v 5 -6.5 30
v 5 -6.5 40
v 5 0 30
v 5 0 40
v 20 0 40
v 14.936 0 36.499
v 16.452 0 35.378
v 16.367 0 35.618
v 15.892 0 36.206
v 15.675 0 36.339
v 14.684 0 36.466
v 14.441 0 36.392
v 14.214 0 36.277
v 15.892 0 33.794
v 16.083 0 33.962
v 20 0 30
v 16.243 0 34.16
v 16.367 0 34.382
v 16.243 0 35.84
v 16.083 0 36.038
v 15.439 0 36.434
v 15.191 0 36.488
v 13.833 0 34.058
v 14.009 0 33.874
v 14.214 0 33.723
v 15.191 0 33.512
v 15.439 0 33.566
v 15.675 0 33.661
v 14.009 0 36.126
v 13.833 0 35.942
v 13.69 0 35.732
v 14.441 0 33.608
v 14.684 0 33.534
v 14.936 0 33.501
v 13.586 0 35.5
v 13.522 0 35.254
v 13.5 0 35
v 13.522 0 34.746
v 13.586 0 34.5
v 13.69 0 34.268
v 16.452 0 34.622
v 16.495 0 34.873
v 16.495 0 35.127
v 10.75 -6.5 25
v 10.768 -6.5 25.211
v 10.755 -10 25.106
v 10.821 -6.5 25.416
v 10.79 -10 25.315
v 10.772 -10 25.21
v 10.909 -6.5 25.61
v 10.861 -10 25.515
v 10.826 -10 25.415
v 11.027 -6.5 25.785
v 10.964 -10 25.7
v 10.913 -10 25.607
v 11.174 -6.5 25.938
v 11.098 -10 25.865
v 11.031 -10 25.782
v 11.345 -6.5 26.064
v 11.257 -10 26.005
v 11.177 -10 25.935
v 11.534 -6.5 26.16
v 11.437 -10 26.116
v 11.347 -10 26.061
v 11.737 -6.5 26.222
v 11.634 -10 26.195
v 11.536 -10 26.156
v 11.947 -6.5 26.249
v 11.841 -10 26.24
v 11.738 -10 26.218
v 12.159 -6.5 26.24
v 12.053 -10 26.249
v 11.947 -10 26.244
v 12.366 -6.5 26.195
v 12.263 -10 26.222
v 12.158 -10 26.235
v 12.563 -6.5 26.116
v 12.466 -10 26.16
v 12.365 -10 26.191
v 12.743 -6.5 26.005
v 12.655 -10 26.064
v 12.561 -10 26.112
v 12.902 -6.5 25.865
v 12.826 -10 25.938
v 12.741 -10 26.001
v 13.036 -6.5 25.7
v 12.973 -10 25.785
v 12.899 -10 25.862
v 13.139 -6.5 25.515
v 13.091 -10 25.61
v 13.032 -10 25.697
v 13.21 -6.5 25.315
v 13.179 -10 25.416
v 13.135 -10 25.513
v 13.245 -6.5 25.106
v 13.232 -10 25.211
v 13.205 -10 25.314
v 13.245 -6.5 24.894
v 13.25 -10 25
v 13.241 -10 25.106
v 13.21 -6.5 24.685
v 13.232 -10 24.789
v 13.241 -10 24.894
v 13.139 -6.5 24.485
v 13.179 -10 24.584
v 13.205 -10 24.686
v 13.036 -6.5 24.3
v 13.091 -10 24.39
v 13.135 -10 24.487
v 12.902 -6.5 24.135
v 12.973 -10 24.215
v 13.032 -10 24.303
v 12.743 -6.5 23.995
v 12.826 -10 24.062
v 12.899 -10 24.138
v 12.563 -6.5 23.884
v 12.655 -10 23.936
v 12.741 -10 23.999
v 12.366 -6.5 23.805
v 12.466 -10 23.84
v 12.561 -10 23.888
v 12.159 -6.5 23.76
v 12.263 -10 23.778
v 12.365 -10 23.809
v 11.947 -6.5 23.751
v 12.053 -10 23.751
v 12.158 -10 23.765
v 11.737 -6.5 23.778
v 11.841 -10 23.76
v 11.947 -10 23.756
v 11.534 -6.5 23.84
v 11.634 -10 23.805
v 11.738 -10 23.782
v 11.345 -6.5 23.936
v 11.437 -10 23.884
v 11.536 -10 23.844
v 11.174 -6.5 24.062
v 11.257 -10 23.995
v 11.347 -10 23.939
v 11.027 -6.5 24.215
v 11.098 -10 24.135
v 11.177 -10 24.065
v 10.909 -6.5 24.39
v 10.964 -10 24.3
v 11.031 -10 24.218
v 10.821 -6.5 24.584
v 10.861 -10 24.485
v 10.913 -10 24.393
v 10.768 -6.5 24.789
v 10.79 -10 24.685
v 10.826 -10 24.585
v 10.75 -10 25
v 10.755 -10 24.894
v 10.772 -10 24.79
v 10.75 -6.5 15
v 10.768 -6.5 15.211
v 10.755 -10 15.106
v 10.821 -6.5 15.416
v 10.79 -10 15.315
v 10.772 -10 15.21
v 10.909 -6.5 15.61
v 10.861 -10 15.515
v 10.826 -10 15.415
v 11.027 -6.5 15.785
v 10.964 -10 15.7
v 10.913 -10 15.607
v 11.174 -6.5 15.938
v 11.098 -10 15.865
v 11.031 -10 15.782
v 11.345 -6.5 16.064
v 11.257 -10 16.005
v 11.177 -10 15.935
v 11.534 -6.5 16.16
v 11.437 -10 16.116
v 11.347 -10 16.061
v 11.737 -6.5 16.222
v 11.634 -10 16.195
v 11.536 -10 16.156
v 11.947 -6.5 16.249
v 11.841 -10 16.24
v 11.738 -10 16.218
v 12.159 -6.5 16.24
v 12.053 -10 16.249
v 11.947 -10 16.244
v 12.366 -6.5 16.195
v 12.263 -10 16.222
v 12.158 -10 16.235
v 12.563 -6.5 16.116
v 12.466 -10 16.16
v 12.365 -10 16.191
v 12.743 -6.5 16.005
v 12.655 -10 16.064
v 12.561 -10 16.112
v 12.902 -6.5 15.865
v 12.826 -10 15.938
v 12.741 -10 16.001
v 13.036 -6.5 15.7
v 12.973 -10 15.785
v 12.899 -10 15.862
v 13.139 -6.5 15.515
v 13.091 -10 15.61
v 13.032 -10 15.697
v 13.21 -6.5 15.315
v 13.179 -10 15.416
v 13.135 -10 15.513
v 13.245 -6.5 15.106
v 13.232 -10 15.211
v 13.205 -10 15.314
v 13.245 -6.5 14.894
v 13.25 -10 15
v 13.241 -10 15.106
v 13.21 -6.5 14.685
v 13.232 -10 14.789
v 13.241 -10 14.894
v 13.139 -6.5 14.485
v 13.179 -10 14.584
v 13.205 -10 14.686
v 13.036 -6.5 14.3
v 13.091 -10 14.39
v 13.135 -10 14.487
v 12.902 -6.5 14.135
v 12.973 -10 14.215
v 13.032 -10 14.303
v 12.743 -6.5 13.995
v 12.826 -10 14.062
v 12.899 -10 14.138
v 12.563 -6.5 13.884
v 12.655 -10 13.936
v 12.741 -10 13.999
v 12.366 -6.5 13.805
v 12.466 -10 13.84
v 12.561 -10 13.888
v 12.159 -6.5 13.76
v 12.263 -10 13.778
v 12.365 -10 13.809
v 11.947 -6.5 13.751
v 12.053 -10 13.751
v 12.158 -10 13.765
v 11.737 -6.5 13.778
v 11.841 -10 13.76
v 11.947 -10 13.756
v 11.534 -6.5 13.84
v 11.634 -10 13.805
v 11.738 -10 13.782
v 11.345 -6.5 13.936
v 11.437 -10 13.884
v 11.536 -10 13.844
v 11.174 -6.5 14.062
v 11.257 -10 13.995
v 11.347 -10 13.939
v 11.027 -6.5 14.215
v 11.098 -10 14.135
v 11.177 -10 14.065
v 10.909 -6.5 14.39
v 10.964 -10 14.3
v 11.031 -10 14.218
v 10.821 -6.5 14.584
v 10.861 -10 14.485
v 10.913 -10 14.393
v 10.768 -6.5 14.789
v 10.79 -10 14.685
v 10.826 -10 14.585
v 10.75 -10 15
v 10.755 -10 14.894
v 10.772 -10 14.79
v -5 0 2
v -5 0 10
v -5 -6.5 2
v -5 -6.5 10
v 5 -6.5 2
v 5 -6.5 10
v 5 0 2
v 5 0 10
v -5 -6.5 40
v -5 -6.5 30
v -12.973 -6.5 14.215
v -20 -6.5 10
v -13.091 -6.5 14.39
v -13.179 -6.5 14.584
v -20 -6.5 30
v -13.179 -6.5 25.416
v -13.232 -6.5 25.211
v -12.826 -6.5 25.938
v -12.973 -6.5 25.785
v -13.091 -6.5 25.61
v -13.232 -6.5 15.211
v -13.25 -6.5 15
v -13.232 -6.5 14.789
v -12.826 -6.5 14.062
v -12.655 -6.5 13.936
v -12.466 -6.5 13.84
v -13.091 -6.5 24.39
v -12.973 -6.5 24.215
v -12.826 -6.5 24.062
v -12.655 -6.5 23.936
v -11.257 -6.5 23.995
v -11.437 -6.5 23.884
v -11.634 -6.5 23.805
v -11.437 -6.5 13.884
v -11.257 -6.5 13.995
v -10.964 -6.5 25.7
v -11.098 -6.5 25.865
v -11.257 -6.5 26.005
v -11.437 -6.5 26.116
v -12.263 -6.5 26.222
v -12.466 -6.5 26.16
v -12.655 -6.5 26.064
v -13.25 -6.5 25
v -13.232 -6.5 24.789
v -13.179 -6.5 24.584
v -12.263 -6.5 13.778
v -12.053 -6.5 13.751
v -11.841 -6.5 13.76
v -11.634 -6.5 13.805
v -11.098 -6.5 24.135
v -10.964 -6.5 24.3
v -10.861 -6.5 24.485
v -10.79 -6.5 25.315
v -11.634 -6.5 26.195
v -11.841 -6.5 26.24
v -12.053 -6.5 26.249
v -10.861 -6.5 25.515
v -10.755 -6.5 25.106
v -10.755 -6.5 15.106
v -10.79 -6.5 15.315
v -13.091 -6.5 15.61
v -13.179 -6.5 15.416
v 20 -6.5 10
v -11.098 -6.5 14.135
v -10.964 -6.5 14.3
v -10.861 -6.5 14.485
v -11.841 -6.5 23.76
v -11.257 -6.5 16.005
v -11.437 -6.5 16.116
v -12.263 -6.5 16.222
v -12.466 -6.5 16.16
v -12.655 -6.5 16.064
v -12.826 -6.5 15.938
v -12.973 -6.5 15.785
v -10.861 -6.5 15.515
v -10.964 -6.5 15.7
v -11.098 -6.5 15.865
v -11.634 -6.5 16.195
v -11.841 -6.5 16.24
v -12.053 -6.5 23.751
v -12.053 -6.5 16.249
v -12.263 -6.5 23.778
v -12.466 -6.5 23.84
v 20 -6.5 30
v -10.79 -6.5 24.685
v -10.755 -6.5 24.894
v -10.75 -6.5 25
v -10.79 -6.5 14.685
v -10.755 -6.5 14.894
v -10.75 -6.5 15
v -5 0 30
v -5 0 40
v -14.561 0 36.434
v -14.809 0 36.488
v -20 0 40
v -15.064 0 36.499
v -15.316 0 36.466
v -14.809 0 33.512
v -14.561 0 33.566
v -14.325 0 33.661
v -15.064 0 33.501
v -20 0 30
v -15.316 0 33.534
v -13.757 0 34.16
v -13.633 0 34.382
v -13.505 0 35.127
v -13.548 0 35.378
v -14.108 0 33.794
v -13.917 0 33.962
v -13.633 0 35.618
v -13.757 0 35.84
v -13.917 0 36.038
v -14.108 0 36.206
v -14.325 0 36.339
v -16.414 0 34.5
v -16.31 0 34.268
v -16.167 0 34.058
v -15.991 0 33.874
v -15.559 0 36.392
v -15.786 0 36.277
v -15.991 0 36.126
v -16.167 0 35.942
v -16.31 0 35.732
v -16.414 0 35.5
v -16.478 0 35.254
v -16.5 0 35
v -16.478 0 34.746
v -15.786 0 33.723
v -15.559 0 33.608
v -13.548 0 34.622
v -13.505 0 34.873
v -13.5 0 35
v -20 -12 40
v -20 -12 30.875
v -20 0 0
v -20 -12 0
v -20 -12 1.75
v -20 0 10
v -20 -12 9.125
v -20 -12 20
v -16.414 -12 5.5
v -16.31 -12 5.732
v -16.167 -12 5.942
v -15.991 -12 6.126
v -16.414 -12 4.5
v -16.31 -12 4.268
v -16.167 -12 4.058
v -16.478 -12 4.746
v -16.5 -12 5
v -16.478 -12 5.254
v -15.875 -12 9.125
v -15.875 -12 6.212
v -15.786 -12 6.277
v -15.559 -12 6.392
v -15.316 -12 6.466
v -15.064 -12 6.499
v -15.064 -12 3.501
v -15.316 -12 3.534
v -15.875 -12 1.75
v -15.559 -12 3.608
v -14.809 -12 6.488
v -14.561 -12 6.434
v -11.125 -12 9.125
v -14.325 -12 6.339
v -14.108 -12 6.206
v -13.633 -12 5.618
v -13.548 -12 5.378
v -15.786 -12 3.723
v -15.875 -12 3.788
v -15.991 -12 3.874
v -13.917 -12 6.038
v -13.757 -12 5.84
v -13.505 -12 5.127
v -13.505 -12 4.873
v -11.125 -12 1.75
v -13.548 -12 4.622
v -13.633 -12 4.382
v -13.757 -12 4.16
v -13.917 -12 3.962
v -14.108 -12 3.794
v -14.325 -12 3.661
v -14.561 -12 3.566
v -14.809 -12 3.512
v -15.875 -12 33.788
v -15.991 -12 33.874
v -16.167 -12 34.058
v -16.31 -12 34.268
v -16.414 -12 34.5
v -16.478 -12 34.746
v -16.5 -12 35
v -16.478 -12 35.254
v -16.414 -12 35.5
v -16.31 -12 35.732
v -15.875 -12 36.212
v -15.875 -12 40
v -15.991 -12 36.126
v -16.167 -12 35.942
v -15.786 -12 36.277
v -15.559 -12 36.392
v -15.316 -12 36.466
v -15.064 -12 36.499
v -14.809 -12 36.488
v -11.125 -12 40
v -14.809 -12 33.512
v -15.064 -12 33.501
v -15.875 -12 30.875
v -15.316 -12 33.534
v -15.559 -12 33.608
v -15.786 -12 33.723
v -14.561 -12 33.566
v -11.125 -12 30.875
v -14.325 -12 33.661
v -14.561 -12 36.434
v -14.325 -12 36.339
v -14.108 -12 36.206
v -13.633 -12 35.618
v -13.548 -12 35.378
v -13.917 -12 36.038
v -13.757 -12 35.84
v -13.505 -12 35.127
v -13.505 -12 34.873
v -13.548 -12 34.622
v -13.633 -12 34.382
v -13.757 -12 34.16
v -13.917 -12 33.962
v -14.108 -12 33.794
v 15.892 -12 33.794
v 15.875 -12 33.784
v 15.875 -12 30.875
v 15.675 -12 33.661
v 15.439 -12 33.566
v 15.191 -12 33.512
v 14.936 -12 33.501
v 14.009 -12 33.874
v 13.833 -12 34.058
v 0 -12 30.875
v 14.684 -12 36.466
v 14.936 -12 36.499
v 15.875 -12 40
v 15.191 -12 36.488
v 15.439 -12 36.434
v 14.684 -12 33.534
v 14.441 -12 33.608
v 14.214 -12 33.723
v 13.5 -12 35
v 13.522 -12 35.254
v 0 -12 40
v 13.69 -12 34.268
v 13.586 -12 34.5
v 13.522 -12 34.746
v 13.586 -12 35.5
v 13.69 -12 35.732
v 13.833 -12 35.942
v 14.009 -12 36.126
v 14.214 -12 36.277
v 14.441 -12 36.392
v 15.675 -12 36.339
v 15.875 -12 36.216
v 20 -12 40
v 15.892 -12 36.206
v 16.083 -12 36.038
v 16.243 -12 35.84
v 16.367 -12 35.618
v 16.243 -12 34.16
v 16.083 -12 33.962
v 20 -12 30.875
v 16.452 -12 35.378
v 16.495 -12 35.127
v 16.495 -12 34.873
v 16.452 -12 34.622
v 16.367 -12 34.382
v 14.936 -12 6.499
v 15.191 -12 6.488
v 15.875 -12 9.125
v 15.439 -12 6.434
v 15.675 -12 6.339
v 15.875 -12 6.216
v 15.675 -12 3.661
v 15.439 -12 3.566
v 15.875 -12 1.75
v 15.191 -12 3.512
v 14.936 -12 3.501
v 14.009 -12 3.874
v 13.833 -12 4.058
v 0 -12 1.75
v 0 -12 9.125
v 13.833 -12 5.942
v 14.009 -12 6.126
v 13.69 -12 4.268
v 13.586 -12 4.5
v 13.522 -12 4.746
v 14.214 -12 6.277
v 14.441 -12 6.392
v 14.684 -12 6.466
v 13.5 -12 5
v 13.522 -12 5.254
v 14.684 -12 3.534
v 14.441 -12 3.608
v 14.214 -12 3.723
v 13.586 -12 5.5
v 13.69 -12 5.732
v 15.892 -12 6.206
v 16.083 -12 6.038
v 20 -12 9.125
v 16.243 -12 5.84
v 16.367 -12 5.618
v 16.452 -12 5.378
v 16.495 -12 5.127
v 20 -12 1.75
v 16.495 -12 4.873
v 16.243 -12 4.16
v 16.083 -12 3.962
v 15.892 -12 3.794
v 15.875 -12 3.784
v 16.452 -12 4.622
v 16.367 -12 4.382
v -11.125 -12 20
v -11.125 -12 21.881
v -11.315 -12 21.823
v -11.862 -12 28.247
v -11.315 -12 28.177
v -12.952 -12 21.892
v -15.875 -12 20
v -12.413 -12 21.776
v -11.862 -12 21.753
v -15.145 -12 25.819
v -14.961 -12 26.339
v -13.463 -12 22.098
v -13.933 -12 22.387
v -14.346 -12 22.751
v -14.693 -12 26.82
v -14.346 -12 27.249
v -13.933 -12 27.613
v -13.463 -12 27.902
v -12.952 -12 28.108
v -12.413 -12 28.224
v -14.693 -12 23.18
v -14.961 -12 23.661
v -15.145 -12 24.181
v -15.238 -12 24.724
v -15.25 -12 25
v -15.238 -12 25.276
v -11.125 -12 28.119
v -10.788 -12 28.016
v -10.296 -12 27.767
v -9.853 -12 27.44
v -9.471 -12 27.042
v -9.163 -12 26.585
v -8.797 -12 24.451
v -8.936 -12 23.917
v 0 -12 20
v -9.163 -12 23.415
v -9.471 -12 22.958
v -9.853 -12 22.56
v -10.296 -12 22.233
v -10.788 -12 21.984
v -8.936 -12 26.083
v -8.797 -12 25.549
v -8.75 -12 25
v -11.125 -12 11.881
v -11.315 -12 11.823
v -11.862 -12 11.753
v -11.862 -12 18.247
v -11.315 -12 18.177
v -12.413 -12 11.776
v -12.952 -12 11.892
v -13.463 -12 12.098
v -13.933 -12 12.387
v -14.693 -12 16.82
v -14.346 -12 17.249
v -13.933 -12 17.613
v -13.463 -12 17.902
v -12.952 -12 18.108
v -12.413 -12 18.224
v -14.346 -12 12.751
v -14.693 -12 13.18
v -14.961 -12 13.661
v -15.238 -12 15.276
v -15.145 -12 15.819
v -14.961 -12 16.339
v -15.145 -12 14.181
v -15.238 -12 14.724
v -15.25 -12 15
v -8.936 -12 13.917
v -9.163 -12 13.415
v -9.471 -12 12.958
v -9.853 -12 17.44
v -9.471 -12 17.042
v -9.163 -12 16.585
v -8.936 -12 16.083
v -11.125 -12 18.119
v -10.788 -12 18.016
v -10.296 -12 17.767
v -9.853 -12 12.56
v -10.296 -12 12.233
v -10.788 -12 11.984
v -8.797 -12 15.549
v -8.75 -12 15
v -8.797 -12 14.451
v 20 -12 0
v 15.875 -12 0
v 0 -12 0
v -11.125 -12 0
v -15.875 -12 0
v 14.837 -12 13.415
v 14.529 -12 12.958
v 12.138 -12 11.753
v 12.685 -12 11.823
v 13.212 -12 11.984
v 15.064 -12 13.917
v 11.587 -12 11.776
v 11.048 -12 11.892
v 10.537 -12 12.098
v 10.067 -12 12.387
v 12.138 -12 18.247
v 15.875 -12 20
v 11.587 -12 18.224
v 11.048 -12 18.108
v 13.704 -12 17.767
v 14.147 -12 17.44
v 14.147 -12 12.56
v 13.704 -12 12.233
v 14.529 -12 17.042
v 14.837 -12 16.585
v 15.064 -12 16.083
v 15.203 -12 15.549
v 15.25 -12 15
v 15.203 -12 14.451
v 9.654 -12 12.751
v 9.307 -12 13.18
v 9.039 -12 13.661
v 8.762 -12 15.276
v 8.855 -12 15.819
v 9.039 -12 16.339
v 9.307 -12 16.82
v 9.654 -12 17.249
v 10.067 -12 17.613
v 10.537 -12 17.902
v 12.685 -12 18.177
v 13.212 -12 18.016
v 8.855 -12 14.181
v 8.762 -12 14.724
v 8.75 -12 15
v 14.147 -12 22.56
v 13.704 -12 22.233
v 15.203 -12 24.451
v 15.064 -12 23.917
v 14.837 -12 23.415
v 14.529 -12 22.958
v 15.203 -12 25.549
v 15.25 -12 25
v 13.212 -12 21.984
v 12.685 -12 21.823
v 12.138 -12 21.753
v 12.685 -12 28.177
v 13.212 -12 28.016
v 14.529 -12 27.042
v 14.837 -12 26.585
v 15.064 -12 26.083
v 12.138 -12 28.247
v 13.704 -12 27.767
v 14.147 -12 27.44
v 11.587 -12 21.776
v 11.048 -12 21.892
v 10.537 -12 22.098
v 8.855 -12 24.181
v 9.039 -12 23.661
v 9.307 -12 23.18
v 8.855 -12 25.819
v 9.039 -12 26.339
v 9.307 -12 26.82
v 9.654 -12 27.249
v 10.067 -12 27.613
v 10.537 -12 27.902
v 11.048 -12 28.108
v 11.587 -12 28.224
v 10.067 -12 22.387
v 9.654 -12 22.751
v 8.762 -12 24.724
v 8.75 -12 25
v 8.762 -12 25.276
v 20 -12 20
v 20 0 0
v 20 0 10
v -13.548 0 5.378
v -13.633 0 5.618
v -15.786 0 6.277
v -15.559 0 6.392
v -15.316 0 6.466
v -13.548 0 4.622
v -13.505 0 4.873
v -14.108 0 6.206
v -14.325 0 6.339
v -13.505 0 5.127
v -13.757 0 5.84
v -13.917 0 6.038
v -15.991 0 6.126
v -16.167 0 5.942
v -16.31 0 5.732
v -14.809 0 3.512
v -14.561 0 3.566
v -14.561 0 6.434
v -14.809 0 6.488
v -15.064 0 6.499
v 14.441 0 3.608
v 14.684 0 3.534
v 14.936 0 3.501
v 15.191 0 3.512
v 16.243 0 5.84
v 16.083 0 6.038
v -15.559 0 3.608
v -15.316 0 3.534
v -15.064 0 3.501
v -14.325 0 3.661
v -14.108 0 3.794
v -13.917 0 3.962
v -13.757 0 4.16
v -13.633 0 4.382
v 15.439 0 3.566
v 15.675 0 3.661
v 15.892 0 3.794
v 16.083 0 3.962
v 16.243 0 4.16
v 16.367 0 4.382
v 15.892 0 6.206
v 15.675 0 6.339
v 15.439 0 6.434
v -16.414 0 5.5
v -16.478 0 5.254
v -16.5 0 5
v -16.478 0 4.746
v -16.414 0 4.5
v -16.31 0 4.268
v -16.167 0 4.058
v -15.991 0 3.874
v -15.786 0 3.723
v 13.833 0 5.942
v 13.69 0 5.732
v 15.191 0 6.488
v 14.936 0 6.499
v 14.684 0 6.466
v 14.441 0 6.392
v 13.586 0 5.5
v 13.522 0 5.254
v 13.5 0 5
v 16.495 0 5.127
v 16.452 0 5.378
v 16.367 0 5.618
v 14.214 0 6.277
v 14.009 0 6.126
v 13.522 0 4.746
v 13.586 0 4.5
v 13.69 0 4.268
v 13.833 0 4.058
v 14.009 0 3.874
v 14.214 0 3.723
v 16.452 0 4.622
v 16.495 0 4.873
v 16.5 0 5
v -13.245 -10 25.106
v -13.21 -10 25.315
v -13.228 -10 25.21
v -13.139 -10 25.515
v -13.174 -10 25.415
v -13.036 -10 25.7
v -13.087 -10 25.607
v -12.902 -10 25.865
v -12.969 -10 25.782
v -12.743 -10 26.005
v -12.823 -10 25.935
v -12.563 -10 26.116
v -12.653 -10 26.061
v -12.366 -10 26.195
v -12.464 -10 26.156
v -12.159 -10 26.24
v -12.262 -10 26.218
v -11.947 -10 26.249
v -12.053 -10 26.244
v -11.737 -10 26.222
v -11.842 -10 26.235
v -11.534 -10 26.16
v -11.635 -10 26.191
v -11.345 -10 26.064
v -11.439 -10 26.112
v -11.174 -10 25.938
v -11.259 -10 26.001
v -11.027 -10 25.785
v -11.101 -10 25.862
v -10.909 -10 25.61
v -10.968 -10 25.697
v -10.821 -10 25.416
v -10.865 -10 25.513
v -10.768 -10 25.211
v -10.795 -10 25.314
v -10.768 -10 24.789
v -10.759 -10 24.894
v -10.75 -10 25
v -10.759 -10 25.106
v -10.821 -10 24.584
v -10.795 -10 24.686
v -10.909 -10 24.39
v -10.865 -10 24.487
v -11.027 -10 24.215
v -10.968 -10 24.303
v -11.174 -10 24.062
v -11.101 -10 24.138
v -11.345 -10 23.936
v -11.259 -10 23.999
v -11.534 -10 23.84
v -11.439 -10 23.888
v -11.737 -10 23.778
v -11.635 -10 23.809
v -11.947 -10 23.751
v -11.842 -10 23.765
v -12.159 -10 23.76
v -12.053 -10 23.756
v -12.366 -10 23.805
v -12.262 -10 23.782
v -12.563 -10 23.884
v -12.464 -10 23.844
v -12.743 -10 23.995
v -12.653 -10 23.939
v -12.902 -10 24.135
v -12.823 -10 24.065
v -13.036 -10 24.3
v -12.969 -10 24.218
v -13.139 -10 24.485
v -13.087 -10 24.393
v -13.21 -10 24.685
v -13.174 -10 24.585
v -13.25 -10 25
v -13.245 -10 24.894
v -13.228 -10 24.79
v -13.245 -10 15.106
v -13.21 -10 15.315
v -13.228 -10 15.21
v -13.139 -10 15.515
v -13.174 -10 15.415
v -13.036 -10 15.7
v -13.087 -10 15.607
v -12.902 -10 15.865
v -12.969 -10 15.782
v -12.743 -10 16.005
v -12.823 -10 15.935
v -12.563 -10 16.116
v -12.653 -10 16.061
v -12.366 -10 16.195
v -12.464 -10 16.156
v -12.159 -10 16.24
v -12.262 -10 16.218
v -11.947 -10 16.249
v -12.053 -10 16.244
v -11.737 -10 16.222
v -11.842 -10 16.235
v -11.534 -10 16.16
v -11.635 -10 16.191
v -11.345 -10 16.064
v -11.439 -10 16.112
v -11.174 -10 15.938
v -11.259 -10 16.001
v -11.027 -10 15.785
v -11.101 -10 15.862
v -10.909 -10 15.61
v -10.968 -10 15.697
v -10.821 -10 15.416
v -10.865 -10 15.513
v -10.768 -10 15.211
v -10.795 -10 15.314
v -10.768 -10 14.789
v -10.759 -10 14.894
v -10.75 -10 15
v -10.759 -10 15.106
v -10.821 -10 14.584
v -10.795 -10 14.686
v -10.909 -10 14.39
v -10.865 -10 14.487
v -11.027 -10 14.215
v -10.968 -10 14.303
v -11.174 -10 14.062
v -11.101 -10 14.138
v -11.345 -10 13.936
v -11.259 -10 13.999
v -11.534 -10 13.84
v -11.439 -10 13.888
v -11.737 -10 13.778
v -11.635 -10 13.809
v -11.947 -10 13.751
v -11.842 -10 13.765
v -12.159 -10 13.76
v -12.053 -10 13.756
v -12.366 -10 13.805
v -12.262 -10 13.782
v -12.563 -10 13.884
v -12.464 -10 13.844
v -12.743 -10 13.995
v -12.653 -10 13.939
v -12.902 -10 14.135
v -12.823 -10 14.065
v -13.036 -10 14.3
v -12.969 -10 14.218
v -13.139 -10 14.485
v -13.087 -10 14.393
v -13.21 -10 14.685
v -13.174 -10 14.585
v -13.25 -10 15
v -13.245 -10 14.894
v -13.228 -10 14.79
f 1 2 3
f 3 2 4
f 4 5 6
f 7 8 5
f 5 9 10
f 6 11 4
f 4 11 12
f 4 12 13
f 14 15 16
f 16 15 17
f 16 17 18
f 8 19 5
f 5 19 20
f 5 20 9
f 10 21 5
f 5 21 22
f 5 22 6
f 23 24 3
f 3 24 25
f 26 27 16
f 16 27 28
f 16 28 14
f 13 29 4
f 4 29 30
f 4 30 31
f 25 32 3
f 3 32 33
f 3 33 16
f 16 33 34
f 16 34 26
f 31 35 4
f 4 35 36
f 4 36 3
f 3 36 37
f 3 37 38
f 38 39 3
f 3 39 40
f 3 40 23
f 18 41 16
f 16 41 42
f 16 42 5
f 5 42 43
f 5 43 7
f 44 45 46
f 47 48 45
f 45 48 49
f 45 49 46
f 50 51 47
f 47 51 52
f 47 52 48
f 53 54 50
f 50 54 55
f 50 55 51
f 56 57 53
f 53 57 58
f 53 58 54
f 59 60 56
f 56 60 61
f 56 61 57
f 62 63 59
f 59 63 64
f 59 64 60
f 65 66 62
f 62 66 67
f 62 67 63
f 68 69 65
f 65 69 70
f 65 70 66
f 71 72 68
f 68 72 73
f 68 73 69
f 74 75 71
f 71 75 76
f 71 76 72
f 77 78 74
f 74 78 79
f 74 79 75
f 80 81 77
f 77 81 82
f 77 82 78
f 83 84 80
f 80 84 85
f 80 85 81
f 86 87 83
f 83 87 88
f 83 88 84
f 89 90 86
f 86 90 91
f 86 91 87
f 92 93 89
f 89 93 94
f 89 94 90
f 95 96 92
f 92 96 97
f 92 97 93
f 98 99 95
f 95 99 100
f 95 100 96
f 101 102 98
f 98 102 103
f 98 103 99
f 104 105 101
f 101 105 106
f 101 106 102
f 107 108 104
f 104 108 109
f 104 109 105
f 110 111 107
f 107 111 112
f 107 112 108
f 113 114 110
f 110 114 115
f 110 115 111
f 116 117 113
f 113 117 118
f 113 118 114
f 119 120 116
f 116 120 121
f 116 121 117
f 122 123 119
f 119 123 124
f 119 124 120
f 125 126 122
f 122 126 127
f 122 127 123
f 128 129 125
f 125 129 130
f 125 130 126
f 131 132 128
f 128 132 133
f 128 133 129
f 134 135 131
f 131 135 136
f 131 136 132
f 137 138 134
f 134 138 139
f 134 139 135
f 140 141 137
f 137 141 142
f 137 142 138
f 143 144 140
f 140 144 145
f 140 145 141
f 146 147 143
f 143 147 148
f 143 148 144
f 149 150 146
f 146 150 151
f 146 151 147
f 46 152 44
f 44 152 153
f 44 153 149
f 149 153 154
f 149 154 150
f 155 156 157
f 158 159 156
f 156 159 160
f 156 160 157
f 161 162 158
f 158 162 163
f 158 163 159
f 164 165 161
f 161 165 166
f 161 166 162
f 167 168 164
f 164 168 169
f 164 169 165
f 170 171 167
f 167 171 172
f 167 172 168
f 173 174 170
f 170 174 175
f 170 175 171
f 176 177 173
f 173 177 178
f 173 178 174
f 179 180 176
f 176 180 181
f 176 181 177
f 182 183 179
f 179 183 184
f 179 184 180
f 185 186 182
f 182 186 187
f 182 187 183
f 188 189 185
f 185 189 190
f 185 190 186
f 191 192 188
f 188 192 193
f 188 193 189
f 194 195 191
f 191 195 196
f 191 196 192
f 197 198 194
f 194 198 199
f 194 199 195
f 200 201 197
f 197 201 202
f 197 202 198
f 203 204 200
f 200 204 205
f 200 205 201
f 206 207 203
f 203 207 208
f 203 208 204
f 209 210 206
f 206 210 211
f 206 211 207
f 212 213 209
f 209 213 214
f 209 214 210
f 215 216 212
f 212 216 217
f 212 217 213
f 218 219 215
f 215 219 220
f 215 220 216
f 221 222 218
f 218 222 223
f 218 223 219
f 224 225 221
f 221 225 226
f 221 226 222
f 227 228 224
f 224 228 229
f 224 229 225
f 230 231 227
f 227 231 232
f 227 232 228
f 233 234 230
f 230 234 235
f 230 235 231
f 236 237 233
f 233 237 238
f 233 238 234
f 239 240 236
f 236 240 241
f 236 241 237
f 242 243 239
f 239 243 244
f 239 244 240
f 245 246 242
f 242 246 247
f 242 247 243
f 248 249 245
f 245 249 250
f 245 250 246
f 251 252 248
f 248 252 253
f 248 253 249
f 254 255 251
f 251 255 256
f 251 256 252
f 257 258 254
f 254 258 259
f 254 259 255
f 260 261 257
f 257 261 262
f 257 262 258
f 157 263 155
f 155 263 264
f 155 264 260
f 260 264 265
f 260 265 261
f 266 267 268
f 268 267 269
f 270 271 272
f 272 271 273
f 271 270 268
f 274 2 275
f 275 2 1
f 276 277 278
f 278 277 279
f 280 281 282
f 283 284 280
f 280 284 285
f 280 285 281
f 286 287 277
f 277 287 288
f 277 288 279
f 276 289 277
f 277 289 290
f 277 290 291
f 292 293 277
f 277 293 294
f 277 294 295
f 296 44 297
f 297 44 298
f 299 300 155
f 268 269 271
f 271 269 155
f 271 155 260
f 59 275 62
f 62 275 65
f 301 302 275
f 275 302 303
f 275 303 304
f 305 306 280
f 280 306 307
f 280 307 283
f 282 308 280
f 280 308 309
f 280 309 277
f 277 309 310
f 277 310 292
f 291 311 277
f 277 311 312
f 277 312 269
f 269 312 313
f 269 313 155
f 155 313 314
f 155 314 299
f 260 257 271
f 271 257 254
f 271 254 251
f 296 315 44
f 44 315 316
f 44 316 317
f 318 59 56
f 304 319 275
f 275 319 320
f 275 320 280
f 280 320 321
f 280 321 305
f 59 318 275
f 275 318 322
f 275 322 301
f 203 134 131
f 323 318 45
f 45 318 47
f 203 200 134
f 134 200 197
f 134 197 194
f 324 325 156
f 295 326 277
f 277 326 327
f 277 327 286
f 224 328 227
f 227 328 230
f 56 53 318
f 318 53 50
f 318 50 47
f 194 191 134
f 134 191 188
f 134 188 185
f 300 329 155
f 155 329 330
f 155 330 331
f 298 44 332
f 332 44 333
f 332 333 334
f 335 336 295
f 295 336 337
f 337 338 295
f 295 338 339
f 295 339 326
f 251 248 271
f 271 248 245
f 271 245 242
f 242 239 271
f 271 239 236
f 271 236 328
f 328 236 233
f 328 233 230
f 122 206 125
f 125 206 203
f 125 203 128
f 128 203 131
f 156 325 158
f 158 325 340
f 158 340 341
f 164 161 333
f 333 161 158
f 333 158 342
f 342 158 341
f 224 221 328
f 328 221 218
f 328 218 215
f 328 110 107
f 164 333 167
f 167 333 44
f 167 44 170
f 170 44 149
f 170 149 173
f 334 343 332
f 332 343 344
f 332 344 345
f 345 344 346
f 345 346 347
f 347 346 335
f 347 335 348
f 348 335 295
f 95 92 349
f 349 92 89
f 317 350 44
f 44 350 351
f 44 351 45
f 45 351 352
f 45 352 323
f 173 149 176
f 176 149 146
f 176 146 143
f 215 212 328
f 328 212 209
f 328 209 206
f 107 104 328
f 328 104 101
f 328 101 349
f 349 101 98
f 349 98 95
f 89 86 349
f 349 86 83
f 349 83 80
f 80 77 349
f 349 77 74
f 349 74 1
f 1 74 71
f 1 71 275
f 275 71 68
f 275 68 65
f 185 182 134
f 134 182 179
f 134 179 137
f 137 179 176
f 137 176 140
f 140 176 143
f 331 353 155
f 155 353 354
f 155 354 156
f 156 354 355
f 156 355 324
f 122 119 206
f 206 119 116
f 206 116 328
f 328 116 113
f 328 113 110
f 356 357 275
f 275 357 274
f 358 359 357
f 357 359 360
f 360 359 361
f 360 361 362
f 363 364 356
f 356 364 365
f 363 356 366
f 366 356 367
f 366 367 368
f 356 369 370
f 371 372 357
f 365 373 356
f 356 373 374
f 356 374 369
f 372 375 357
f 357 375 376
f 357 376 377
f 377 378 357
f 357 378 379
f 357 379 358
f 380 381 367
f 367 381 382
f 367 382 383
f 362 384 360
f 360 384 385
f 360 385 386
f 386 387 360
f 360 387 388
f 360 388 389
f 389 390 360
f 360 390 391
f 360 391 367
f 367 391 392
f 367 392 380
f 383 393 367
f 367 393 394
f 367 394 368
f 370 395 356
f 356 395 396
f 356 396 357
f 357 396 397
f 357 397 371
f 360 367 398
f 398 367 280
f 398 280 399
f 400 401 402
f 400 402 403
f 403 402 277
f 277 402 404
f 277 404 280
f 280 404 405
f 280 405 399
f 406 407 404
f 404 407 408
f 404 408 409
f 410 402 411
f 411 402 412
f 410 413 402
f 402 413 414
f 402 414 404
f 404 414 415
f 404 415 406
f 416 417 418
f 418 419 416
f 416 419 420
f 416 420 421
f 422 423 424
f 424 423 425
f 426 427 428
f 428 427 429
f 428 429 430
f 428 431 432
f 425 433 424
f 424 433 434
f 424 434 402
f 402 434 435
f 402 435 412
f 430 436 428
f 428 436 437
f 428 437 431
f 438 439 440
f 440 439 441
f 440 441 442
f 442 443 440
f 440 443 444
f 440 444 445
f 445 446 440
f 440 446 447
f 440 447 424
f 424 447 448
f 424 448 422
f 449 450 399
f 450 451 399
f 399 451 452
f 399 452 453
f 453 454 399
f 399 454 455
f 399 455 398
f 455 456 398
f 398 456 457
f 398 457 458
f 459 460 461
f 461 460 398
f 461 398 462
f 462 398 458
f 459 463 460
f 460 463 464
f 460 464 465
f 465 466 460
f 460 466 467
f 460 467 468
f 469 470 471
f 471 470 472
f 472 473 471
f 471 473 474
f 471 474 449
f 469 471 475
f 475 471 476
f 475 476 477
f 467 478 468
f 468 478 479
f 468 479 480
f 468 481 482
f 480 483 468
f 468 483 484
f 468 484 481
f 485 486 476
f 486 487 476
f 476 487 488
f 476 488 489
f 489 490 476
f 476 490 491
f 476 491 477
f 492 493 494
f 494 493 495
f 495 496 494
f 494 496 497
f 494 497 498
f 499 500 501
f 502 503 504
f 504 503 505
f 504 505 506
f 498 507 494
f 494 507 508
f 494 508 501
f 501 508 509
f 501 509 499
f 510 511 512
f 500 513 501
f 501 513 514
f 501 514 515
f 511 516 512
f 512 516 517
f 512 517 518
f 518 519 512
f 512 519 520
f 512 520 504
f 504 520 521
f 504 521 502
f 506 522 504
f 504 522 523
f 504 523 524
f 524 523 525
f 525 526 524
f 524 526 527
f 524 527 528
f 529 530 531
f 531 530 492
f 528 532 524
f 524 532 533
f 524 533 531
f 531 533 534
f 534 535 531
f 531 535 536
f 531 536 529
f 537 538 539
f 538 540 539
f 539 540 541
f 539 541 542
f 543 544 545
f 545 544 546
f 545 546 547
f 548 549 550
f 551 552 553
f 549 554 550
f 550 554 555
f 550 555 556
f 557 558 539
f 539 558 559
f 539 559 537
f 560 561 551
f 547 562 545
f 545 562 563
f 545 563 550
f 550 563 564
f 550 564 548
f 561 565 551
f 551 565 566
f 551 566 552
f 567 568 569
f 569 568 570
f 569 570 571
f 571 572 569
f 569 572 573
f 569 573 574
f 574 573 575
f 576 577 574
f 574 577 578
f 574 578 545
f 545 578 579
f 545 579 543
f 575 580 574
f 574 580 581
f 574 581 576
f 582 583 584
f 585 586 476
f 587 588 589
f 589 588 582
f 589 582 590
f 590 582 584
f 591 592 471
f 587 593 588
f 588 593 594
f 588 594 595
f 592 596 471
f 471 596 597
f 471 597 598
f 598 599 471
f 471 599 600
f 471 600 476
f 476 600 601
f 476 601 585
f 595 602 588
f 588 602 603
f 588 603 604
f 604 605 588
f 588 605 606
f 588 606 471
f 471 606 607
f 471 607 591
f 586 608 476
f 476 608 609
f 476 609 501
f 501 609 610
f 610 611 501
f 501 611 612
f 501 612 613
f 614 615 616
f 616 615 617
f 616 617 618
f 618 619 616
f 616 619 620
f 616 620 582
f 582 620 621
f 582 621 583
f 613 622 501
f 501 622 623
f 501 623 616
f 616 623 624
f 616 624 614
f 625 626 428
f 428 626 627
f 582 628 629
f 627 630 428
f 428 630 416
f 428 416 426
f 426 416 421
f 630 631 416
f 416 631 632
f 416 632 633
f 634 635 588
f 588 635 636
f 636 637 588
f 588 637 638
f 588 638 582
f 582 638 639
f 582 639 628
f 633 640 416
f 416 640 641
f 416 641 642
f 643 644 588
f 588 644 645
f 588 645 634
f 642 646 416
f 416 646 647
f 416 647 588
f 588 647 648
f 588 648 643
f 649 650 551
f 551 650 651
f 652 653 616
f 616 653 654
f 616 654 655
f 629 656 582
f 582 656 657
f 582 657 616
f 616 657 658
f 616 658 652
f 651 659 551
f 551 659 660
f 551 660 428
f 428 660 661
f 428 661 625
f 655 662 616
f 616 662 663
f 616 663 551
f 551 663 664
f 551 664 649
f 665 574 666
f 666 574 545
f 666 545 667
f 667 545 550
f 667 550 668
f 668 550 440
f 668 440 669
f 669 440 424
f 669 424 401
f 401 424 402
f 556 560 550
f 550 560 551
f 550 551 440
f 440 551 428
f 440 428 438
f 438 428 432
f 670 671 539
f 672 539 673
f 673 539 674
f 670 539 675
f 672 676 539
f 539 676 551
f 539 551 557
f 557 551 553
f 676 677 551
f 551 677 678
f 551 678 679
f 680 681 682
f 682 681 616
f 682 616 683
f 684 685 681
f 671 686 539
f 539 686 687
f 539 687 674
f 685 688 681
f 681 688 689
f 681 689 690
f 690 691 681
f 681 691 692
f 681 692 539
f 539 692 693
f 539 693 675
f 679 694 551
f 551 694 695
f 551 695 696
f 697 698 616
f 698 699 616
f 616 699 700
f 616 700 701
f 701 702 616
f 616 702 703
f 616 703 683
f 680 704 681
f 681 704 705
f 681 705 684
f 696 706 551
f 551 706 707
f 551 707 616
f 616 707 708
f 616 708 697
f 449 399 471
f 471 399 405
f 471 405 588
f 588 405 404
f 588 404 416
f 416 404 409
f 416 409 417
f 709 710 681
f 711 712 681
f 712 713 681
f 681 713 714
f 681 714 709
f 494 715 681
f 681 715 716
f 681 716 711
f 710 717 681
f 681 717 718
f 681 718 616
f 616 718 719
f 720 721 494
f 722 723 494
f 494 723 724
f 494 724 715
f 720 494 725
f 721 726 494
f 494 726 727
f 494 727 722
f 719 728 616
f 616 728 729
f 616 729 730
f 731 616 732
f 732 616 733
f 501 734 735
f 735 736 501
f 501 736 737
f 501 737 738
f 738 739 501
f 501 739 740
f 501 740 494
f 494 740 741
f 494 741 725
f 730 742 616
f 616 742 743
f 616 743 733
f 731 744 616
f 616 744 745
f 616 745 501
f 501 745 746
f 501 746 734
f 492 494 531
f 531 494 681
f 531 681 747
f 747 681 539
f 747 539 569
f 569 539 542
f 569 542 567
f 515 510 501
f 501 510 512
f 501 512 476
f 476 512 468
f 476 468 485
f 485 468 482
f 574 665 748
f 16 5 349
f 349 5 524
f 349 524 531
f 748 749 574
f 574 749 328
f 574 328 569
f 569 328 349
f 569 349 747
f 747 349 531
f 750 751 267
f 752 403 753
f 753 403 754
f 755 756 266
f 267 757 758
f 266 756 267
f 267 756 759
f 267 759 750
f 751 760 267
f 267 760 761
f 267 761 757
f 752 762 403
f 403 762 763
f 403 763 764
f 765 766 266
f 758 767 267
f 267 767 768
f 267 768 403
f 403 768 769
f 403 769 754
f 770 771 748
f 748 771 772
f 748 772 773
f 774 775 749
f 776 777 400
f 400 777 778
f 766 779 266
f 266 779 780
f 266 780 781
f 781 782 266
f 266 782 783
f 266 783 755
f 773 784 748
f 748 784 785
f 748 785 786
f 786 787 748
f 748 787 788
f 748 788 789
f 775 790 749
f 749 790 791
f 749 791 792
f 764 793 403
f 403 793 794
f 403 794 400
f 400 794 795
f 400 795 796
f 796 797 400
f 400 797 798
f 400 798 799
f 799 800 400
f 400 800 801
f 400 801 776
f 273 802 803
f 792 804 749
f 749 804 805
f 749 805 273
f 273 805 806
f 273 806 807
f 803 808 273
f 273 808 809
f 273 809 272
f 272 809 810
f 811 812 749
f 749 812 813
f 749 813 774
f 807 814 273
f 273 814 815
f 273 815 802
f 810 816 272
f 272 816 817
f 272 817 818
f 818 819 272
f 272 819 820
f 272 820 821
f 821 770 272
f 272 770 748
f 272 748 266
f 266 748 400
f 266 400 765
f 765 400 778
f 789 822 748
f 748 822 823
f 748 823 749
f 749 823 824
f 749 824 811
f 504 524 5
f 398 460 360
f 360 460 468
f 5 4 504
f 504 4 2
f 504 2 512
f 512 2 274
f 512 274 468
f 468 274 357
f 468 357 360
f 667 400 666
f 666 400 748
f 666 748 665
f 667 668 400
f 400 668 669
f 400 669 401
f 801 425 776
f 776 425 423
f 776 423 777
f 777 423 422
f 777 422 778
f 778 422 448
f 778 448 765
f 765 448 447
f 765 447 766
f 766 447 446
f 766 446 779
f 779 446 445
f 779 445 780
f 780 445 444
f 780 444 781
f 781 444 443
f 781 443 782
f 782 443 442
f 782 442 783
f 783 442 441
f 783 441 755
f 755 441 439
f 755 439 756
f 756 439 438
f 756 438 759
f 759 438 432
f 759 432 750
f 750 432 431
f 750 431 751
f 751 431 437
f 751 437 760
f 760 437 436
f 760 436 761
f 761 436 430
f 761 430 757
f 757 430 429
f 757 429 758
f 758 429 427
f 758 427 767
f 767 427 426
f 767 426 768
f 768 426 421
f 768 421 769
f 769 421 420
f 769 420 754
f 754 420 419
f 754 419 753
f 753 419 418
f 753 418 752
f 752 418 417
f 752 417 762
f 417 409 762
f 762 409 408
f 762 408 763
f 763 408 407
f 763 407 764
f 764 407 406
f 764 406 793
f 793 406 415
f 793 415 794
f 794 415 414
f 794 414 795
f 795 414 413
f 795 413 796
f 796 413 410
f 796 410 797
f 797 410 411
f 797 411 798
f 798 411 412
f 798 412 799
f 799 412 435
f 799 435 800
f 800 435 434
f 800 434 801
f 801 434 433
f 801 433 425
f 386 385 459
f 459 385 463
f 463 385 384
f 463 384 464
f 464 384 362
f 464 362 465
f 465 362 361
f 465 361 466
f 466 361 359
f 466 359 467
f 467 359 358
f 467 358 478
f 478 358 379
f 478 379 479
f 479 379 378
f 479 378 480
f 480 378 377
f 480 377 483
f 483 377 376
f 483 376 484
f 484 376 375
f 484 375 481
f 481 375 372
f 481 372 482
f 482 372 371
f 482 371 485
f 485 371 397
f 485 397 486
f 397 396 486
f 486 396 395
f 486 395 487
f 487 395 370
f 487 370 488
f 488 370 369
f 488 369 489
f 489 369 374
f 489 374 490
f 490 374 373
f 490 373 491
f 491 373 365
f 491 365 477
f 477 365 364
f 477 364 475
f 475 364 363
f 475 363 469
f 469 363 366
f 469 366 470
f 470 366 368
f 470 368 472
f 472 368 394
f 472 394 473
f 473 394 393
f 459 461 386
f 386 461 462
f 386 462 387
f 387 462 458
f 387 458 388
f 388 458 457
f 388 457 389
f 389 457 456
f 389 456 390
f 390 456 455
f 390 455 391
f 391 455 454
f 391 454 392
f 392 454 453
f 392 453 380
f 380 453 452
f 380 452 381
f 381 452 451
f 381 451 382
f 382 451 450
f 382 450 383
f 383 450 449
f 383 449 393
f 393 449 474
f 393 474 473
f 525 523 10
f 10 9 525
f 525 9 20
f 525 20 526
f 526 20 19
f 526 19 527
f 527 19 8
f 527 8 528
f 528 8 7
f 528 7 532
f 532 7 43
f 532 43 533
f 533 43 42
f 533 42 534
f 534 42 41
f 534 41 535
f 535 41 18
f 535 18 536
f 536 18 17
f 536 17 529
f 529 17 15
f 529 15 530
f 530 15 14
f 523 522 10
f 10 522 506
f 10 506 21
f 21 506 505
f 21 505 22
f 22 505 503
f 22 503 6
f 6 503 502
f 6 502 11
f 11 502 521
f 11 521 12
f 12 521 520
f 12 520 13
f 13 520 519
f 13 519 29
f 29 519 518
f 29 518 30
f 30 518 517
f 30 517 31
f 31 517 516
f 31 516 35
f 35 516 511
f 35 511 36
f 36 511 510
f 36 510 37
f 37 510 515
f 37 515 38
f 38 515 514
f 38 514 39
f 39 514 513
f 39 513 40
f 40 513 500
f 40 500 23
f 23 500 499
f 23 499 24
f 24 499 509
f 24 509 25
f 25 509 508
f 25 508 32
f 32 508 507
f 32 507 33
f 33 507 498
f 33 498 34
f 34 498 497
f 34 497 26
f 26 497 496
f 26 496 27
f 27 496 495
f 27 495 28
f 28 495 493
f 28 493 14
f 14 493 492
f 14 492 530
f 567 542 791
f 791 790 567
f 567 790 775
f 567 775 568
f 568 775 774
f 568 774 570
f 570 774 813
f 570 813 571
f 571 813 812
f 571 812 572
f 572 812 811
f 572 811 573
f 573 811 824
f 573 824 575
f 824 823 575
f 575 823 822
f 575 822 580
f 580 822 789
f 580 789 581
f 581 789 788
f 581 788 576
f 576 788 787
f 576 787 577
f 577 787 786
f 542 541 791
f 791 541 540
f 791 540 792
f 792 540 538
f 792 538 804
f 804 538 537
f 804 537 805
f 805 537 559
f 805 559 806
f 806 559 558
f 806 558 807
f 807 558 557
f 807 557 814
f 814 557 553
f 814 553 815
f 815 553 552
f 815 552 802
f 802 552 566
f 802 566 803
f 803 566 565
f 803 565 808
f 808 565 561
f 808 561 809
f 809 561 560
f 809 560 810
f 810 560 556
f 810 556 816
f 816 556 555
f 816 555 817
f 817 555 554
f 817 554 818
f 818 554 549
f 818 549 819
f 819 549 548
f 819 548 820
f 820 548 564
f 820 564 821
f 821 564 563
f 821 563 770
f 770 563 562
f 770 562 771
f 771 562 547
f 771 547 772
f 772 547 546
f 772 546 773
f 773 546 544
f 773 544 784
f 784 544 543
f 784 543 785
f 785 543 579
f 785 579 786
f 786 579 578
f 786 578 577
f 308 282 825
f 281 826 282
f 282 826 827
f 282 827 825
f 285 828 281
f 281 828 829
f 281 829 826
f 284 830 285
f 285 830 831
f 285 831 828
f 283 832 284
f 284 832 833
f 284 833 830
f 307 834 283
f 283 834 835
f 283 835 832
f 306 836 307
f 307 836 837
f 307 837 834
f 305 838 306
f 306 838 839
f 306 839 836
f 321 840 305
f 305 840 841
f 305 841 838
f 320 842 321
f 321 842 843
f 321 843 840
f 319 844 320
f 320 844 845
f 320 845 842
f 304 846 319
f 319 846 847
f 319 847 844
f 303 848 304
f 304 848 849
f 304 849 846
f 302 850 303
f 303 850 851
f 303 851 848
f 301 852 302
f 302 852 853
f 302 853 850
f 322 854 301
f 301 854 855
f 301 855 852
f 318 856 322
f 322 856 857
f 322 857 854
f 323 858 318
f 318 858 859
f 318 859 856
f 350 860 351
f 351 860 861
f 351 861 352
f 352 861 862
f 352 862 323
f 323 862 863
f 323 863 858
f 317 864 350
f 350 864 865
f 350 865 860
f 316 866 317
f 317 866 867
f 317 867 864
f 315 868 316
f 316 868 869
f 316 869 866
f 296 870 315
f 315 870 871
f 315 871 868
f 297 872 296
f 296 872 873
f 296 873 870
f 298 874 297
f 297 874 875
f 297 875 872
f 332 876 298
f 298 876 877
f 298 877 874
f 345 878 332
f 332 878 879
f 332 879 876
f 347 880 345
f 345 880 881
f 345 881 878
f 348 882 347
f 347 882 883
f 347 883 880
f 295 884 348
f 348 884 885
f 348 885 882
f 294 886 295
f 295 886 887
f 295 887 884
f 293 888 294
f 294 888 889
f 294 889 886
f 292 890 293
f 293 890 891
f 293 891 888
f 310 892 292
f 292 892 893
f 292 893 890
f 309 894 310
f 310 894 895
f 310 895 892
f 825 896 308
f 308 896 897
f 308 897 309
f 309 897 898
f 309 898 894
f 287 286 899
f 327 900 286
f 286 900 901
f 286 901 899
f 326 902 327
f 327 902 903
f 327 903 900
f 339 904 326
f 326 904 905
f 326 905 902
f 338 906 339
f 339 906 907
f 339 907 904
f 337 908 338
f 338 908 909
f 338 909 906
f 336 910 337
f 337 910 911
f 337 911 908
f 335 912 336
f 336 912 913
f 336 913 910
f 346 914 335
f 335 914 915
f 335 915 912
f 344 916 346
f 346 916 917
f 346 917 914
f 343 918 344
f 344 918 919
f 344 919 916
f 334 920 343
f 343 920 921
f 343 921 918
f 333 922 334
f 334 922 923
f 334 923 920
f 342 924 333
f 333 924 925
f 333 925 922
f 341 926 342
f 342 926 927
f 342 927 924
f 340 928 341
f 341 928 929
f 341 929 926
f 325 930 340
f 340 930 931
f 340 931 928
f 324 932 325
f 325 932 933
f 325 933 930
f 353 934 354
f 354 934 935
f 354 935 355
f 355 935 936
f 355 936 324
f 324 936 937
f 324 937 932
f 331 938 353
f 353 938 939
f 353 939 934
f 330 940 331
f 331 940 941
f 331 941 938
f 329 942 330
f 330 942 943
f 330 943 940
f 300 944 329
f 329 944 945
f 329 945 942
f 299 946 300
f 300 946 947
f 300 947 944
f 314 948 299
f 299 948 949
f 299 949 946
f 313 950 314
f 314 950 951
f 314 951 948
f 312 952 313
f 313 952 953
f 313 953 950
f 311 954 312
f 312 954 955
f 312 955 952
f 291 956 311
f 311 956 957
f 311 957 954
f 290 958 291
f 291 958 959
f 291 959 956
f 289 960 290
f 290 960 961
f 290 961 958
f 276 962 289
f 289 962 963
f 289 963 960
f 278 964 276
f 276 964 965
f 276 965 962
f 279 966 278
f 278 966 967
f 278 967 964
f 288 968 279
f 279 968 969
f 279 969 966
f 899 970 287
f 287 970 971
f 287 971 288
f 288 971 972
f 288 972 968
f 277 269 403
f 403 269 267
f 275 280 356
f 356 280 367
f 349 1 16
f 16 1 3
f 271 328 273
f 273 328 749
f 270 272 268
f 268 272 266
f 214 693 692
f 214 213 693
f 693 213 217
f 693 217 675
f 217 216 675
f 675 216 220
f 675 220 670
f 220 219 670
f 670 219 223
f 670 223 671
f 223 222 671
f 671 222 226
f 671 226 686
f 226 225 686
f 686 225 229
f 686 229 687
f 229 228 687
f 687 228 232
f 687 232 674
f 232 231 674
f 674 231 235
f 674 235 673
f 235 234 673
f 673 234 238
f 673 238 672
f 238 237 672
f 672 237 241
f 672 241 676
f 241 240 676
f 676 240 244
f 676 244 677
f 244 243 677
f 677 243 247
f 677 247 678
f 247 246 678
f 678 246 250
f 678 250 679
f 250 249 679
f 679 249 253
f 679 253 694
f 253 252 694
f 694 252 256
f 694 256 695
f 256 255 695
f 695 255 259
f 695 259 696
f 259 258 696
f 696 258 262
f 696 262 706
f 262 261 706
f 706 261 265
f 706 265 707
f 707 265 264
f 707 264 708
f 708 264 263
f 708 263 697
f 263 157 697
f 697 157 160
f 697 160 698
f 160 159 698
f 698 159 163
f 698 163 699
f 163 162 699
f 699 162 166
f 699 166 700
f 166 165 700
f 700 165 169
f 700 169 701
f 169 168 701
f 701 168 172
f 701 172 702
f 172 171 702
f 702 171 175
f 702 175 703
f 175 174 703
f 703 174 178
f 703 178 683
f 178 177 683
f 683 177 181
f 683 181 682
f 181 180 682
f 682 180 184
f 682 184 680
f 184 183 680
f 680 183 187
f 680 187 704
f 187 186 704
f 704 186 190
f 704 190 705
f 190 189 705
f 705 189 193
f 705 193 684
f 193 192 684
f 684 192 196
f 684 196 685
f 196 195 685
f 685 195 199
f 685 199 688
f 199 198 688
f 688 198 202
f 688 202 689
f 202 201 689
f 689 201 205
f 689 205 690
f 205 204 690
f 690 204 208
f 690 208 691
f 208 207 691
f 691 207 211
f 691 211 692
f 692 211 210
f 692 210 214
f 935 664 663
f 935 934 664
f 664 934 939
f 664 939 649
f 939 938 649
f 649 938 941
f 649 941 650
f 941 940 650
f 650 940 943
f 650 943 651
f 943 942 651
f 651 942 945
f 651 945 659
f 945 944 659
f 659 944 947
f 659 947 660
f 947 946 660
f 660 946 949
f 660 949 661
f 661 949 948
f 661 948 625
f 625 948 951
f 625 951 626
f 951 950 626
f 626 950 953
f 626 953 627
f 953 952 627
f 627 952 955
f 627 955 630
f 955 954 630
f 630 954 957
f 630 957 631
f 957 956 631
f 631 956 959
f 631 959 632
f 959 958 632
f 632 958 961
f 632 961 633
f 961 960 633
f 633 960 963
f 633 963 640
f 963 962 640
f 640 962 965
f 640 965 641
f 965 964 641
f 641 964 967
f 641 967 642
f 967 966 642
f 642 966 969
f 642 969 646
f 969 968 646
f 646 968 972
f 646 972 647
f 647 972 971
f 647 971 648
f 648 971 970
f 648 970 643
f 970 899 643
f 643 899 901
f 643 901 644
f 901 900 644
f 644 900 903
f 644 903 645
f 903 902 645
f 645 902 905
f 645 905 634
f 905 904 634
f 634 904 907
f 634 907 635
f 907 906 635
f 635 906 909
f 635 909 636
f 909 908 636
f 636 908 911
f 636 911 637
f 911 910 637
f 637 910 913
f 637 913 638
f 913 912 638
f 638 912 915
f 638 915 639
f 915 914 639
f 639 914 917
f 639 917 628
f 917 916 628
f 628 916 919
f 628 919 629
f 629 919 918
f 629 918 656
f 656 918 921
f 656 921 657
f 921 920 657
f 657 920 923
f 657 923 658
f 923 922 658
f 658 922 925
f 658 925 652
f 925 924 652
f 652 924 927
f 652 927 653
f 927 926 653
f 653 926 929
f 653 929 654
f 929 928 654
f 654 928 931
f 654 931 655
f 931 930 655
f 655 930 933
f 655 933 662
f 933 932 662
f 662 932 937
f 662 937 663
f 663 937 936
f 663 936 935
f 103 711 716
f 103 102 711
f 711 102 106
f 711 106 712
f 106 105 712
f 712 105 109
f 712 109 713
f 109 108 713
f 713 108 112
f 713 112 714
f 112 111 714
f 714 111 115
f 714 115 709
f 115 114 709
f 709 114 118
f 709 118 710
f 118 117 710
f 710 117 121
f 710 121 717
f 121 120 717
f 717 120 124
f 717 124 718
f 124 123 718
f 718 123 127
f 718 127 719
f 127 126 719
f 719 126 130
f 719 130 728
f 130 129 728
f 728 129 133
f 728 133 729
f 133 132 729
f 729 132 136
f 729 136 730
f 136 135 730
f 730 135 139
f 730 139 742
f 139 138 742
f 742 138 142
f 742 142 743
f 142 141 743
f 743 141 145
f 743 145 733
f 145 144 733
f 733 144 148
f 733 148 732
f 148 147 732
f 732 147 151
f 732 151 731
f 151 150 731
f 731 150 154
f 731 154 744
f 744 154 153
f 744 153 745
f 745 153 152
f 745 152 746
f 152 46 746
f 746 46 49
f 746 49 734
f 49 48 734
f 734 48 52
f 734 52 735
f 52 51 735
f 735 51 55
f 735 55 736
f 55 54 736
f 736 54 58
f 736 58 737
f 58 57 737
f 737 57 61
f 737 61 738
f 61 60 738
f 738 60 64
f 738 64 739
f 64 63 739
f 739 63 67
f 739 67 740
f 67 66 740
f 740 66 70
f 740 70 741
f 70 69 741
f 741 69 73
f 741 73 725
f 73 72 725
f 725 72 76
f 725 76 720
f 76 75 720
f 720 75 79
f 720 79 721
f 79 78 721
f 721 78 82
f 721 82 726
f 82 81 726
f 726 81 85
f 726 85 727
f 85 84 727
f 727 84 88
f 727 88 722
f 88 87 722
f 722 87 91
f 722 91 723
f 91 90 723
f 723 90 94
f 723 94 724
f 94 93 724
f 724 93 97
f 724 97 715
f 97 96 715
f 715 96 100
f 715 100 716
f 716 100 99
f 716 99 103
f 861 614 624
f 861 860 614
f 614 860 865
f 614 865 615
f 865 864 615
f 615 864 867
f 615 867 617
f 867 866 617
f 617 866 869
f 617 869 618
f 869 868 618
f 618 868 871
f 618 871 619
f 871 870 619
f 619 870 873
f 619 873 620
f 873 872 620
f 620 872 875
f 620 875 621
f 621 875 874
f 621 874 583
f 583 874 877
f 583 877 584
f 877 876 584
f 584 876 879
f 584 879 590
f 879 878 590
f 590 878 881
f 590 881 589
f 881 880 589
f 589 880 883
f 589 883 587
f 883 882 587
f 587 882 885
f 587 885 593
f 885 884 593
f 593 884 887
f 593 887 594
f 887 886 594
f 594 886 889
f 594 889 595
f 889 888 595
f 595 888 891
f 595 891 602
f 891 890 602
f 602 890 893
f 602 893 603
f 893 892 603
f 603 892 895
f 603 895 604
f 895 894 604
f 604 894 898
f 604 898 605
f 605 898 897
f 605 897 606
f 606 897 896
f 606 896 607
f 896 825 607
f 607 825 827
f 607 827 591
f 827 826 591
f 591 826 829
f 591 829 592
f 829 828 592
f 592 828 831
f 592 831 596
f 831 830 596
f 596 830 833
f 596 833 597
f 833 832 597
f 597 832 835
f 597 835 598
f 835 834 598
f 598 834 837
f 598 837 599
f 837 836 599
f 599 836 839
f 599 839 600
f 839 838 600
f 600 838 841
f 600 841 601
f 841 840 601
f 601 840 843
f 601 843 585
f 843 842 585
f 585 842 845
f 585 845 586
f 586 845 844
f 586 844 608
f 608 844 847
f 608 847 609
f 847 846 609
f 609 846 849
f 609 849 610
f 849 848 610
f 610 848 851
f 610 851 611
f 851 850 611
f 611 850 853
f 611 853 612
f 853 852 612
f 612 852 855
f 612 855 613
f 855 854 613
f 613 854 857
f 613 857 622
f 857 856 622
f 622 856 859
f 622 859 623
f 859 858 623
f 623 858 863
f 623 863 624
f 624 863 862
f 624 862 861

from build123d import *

# Parameters (mm, degrees)
BOSS_EXTRU_1_DEPTH      = 40
ENL_V_MAT_EXTRU_1_REACH = 14
ESQUISSE2_R             = 1.5
ESQUISSE2_R_2           = 1.25
ESQUISSE3_W             = 15
ESQUISSE3_H             = 20
ENL_V_MAT_EXTRU_2_DEPTH = 6.5
ESQUISSE4_W             = 40
ESQUISSE4_H             = 12
BOSS_EXTRU_2_DEPTH      = 2
CHANFREIN1_SIZE         = 2


with BuildPart() as part:
    # Esquisse1 → Boss.-Extru.1 (new body)
    with BuildSketch(Plane.XY):
        Polygon((5, 0), (20, 0), (20, -12), (-20, -12), (-20, 0), (-5, 0), (-5, -6.5), (5, -6.5), align=None)
    extrude(amount=BOSS_EXTRU_1_DEPTH)

    # Esquisse2 → Enlèv. mat.-Extru.1 (cut, up to next)
    with BuildSketch(Plane(origin=(0, 0, 0), x_dir=(1, 0, 0), z_dir=(0, 1, 0)), mode=Mode.PRIVATE) as enl_v_mat_extru_1_sk1:
        with Locations((-15, -5)):
            Circle(ESQUISSE2_R)
    enl_v_mat_extru_1_tool1 = extrude(enl_v_mat_extru_1_sk1.sketch, amount=-ENL_V_MAT_EXTRU_1_REACH, mode=Mode.PRIVATE) & part.part
    add(enl_v_mat_extru_1_tool1.solids().sort_by_distance((-15, 0, 5))[0], mode=Mode.SUBTRACT)
    # Esquisse2 → Enlèv. mat.-Extru.1 (cut, up to next)
    with BuildSketch(Plane(origin=(0, 0, 0), x_dir=(1, 0, 0), z_dir=(0, 1, 0)), mode=Mode.PRIVATE) as enl_v_mat_extru_1_sk2:
        with Locations((-15, -35)):
            Circle(ESQUISSE2_R)
    enl_v_mat_extru_1_tool2 = extrude(enl_v_mat_extru_1_sk2.sketch, amount=-ENL_V_MAT_EXTRU_1_REACH, mode=Mode.PRIVATE) & part.part
    add(enl_v_mat_extru_1_tool2.solids().sort_by_distance((-15, 0, 35))[0], mode=Mode.SUBTRACT)
    # Esquisse2 → Enlèv. mat.-Extru.1 (cut, up to next)
    with BuildSketch(Plane(origin=(0, 0, 0), x_dir=(1, 0, 0), z_dir=(0, 1, 0)), mode=Mode.PRIVATE) as enl_v_mat_extru_1_sk3:
        with Locations((15, -35)):
            Circle(ESQUISSE2_R)
    enl_v_mat_extru_1_tool3 = extrude(enl_v_mat_extru_1_sk3.sketch, amount=-ENL_V_MAT_EXTRU_1_REACH, mode=Mode.PRIVATE) & part.part
    add(enl_v_mat_extru_1_tool3.solids().sort_by_distance((15, 0, 35))[0], mode=Mode.SUBTRACT)
    # Esquisse2 → Enlèv. mat.-Extru.1 (cut, up to next)
    with BuildSketch(Plane(origin=(0, 0, 0), x_dir=(1, 0, 0), z_dir=(0, 1, 0)), mode=Mode.PRIVATE) as enl_v_mat_extru_1_sk4:
        with Locations((15, -5)):
            Circle(ESQUISSE2_R)
    enl_v_mat_extru_1_tool4 = extrude(enl_v_mat_extru_1_sk4.sketch, amount=-ENL_V_MAT_EXTRU_1_REACH, mode=Mode.PRIVATE) & part.part
    add(enl_v_mat_extru_1_tool4.solids().sort_by_distance((15, 0, 5))[0], mode=Mode.SUBTRACT)
    # Esquisse2 → Enlèv. mat.-Extru.1 (cut, up to next)
    with BuildSketch(Plane(origin=(0, 0, 0), x_dir=(1, 0, 0), z_dir=(0, 1, 0)), mode=Mode.PRIVATE) as enl_v_mat_extru_1_sk5:
        with Locations((-12, -25)):
            Circle(ESQUISSE2_R_2)
    enl_v_mat_extru_1_tool5 = extrude(enl_v_mat_extru_1_sk5.sketch, amount=-ENL_V_MAT_EXTRU_1_REACH, mode=Mode.PRIVATE) & part.part
    add(enl_v_mat_extru_1_tool5.solids().sort_by_distance((-12, 0, 25))[0], mode=Mode.SUBTRACT)
    # Esquisse2 → Enlèv. mat.-Extru.1 (cut, up to next)
    with BuildSketch(Plane(origin=(0, 0, 0), x_dir=(1, 0, 0), z_dir=(0, 1, 0)), mode=Mode.PRIVATE) as enl_v_mat_extru_1_sk6:
        with Locations((-12, -15)):
            Circle(ESQUISSE2_R_2)
    enl_v_mat_extru_1_tool6 = extrude(enl_v_mat_extru_1_sk6.sketch, amount=-ENL_V_MAT_EXTRU_1_REACH, mode=Mode.PRIVATE) & part.part
    add(enl_v_mat_extru_1_tool6.solids().sort_by_distance((-12, 0, 15))[0], mode=Mode.SUBTRACT)
    # Esquisse2 → Enlèv. mat.-Extru.1 (cut, up to next)
    with BuildSketch(Plane(origin=(0, 0, 0), x_dir=(1, 0, 0), z_dir=(0, 1, 0)), mode=Mode.PRIVATE) as enl_v_mat_extru_1_sk7:
        with Locations((12, -25)):
            Circle(ESQUISSE2_R_2)
    enl_v_mat_extru_1_tool7 = extrude(enl_v_mat_extru_1_sk7.sketch, amount=-ENL_V_MAT_EXTRU_1_REACH, mode=Mode.PRIVATE) & part.part
    add(enl_v_mat_extru_1_tool7.solids().sort_by_distance((12, 0, 25))[0], mode=Mode.SUBTRACT)
    # Esquisse2 → Enlèv. mat.-Extru.1 (cut, up to next)
    with BuildSketch(Plane(origin=(0, 0, 0), x_dir=(1, 0, 0), z_dir=(0, 1, 0)), mode=Mode.PRIVATE) as enl_v_mat_extru_1_sk8:
        with Locations((12, -15)):
            Circle(ESQUISSE2_R_2)
    enl_v_mat_extru_1_tool8 = extrude(enl_v_mat_extru_1_sk8.sketch, amount=-ENL_V_MAT_EXTRU_1_REACH, mode=Mode.PRIVATE) & part.part
    add(enl_v_mat_extru_1_tool8.solids().sort_by_distance((12, 0, 15))[0], mode=Mode.SUBTRACT)

    # Esquisse3 → Enlèv. mat.-Extru.2 (cut)
    with BuildSketch(Plane(origin=(0, 0, 0), x_dir=(1, 0, 0), z_dir=(0, 1, 0))):
        with Locations((-12.5, -20)):
            Rectangle(ESQUISSE3_W, ESQUISSE3_H)
        with Locations((12.5, -20)):
            Rectangle(ESQUISSE3_W, ESQUISSE3_H)
    extrude(amount=-ENL_V_MAT_EXTRU_2_DEPTH, mode=Mode.SUBTRACT)

    # Esquisse4 → Boss.-Extru.2 (add)
    with BuildSketch(Plane(origin=(0, 0, 0), x_dir=(-1, 0, 0), z_dir=(0, 0, -1))):
        with Locations((0, -6)):
            Rectangle(ESQUISSE4_W, ESQUISSE4_H)
    extrude(amount=-BOSS_EXTRU_2_DEPTH)

    # Chanfrein1
    chanfrein1_edges = [part.edges().sort_by_distance(p)[0] for p in [
        (-13.25, -12, 25),
        (-13.25, -12, 15),
        (10.75, -12, 25),
        (10.75, -12, 15),
    ]]
    chamfer(chanfrein1_edges, length=CHANFREIN1_SIZE)


solid = part.part
